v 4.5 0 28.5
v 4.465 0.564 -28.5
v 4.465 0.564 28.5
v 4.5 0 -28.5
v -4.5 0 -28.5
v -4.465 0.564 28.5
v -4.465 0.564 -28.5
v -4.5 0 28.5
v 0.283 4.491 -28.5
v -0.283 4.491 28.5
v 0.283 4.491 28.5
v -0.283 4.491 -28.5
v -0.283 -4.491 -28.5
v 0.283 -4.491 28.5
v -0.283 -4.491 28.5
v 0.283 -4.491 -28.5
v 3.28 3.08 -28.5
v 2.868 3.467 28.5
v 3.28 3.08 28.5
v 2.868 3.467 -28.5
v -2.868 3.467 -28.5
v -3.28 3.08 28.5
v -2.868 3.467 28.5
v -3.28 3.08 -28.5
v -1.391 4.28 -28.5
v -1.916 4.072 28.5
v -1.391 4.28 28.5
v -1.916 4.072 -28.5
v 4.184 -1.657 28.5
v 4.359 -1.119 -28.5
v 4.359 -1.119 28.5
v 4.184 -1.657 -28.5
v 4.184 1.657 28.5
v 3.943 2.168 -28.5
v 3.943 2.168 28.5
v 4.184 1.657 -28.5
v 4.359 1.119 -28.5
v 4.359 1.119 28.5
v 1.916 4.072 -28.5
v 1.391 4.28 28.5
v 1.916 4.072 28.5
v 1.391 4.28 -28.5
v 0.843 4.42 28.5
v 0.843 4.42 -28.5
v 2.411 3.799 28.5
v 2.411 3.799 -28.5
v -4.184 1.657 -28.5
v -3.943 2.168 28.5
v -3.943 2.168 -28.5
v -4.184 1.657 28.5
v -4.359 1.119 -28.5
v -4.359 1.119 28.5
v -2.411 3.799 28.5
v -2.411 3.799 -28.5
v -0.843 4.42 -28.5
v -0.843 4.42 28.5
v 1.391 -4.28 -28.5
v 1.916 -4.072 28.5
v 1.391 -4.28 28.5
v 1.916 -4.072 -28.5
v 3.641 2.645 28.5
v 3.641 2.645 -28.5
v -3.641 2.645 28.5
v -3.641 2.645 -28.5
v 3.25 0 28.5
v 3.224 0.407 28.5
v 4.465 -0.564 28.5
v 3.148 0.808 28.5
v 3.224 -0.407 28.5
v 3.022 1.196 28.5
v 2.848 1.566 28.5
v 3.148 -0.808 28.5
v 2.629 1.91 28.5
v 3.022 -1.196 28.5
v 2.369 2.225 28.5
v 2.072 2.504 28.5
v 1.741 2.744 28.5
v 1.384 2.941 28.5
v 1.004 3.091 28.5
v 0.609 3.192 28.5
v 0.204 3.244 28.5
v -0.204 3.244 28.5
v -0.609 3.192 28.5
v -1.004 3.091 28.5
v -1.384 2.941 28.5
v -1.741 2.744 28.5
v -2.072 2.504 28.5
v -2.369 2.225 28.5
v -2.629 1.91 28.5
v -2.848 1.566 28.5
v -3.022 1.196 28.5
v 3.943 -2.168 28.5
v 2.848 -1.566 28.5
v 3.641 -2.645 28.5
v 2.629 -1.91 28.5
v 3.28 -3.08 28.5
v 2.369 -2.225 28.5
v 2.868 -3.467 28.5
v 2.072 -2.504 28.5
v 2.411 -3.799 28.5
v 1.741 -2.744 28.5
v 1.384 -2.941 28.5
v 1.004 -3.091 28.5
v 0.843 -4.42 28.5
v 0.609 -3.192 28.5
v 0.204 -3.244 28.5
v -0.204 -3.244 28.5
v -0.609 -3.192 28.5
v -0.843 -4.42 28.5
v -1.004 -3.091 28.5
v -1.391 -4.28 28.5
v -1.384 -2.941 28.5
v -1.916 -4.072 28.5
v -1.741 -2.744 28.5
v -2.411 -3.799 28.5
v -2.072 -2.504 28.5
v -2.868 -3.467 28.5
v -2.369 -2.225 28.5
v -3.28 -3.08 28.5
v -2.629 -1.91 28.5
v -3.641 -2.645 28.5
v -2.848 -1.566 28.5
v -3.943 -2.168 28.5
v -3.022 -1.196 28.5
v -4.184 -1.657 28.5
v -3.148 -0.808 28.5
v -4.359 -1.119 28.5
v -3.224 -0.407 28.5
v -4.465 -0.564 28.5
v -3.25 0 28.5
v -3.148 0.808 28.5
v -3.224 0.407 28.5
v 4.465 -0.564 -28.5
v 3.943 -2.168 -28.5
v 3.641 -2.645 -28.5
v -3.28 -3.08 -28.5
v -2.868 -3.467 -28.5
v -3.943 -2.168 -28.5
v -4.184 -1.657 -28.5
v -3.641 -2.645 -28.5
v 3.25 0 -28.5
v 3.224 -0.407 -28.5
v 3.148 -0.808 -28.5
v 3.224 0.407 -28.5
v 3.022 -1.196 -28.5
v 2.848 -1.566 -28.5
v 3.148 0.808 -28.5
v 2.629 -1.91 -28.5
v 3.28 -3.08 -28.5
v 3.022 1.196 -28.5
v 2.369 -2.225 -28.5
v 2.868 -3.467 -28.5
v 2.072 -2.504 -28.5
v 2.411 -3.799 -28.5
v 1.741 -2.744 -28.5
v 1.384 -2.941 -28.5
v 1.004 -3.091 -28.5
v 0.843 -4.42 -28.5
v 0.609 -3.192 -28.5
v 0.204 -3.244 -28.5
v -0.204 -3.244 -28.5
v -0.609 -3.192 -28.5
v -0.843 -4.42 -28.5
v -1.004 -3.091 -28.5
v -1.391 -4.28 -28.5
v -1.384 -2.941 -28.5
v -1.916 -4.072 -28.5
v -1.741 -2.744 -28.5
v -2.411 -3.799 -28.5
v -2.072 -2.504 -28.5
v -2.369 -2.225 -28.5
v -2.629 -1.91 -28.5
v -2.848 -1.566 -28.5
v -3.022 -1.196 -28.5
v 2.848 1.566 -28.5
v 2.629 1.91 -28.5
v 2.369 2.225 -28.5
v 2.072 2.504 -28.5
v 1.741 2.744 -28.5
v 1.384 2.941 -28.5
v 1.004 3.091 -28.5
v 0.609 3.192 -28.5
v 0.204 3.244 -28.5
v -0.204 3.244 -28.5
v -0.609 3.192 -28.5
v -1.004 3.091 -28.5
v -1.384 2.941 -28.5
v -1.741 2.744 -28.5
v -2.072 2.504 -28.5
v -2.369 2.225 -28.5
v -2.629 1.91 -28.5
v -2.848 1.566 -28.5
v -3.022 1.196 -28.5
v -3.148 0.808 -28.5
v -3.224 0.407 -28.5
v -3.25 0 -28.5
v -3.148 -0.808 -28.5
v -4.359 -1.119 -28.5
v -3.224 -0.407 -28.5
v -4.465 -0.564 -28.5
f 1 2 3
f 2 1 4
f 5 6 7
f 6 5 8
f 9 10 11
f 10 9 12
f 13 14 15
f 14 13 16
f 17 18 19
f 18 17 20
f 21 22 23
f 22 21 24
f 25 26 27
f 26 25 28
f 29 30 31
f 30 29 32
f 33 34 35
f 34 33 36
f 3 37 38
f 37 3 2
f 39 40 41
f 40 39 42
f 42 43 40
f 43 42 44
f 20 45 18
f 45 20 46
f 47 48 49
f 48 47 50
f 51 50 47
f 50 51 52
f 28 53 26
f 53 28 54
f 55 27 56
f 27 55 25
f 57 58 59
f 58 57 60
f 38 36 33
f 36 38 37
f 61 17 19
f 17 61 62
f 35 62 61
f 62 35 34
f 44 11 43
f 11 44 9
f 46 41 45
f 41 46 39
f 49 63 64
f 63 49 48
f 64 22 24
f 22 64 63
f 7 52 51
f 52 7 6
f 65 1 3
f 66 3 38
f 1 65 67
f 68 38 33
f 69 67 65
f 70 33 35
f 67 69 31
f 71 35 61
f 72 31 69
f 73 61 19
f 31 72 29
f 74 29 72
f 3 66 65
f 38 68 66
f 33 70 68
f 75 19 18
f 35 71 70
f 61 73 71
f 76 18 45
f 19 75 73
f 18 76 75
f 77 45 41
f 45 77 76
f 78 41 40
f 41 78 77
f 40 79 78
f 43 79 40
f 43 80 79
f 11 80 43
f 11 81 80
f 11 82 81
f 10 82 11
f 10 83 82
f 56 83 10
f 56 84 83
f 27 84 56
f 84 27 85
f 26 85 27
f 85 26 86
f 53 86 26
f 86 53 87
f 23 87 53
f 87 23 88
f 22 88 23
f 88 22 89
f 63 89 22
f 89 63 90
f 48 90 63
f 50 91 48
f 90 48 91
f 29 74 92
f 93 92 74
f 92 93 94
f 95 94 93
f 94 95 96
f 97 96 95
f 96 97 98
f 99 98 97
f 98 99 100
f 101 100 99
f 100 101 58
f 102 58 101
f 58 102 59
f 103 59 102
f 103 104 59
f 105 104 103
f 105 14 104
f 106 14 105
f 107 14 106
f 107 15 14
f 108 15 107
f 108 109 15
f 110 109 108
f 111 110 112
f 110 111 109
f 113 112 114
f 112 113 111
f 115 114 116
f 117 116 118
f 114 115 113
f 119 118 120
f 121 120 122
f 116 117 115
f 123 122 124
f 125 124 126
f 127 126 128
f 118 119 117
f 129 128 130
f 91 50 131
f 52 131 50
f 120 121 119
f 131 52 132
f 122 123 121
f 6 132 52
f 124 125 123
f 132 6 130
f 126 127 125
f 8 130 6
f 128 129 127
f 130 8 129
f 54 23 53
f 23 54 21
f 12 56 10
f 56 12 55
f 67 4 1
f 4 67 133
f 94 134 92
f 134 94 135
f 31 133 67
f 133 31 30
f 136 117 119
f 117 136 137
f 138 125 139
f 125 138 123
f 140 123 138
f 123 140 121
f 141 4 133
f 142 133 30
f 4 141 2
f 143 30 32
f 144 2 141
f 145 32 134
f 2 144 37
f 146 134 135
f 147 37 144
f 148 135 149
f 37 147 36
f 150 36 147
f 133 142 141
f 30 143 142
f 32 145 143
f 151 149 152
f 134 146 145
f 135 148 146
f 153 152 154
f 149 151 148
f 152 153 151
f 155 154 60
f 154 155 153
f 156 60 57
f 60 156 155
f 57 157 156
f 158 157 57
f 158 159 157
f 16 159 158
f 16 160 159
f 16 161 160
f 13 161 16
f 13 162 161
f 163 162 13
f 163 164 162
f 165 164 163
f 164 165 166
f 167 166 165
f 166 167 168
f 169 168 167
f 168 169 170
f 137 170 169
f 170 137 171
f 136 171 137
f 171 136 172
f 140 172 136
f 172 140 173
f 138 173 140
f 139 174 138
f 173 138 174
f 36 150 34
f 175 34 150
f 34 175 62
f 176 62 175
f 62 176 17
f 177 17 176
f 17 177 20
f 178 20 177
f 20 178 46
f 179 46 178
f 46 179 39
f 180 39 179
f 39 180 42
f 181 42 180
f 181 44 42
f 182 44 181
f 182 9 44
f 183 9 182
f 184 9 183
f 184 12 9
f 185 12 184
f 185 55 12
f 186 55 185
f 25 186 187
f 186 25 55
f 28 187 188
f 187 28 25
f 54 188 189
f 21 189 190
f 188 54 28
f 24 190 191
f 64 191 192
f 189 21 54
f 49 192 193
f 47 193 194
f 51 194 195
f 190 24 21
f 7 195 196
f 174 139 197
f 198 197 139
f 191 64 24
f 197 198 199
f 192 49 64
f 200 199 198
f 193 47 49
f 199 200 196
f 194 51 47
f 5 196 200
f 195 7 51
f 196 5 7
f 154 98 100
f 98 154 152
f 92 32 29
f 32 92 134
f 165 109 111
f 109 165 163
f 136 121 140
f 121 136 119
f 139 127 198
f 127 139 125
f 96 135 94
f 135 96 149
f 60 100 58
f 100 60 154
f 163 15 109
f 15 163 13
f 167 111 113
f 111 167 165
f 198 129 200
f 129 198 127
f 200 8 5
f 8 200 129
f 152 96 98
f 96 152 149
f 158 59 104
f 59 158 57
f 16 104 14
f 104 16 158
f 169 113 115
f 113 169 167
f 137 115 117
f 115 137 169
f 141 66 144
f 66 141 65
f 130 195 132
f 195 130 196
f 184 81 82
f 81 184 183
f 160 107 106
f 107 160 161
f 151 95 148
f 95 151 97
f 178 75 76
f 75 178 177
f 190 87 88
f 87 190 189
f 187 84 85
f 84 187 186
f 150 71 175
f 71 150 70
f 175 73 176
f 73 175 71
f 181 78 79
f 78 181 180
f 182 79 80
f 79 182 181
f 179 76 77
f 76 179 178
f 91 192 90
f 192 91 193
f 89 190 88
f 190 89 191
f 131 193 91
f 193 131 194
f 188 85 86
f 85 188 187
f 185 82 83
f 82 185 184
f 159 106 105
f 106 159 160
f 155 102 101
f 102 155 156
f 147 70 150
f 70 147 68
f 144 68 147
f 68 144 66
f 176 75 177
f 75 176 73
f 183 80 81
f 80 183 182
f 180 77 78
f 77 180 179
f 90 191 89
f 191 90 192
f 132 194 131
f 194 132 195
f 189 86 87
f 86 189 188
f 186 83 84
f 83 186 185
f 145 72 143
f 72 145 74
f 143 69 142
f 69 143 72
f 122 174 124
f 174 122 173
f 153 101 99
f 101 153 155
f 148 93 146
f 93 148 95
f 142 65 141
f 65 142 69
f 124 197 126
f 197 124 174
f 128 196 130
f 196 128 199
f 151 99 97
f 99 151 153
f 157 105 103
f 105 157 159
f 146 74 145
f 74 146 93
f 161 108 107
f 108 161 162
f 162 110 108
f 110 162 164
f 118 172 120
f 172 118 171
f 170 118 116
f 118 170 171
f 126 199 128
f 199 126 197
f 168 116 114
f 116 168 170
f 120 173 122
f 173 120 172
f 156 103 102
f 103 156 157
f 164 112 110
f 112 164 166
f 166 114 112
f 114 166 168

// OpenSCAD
$fn = 50;


difference() {
	union() {
		translate(v = [0, 0, -28.5000000000]) {
			cylinder(h = 57, r = 4.5000000000);
		}
	}
	union() {
		translate(v = [0, 0, -100.0000000000]) {
			cylinder(h = 200, r = 3.2500000000);
		}
	}
}
